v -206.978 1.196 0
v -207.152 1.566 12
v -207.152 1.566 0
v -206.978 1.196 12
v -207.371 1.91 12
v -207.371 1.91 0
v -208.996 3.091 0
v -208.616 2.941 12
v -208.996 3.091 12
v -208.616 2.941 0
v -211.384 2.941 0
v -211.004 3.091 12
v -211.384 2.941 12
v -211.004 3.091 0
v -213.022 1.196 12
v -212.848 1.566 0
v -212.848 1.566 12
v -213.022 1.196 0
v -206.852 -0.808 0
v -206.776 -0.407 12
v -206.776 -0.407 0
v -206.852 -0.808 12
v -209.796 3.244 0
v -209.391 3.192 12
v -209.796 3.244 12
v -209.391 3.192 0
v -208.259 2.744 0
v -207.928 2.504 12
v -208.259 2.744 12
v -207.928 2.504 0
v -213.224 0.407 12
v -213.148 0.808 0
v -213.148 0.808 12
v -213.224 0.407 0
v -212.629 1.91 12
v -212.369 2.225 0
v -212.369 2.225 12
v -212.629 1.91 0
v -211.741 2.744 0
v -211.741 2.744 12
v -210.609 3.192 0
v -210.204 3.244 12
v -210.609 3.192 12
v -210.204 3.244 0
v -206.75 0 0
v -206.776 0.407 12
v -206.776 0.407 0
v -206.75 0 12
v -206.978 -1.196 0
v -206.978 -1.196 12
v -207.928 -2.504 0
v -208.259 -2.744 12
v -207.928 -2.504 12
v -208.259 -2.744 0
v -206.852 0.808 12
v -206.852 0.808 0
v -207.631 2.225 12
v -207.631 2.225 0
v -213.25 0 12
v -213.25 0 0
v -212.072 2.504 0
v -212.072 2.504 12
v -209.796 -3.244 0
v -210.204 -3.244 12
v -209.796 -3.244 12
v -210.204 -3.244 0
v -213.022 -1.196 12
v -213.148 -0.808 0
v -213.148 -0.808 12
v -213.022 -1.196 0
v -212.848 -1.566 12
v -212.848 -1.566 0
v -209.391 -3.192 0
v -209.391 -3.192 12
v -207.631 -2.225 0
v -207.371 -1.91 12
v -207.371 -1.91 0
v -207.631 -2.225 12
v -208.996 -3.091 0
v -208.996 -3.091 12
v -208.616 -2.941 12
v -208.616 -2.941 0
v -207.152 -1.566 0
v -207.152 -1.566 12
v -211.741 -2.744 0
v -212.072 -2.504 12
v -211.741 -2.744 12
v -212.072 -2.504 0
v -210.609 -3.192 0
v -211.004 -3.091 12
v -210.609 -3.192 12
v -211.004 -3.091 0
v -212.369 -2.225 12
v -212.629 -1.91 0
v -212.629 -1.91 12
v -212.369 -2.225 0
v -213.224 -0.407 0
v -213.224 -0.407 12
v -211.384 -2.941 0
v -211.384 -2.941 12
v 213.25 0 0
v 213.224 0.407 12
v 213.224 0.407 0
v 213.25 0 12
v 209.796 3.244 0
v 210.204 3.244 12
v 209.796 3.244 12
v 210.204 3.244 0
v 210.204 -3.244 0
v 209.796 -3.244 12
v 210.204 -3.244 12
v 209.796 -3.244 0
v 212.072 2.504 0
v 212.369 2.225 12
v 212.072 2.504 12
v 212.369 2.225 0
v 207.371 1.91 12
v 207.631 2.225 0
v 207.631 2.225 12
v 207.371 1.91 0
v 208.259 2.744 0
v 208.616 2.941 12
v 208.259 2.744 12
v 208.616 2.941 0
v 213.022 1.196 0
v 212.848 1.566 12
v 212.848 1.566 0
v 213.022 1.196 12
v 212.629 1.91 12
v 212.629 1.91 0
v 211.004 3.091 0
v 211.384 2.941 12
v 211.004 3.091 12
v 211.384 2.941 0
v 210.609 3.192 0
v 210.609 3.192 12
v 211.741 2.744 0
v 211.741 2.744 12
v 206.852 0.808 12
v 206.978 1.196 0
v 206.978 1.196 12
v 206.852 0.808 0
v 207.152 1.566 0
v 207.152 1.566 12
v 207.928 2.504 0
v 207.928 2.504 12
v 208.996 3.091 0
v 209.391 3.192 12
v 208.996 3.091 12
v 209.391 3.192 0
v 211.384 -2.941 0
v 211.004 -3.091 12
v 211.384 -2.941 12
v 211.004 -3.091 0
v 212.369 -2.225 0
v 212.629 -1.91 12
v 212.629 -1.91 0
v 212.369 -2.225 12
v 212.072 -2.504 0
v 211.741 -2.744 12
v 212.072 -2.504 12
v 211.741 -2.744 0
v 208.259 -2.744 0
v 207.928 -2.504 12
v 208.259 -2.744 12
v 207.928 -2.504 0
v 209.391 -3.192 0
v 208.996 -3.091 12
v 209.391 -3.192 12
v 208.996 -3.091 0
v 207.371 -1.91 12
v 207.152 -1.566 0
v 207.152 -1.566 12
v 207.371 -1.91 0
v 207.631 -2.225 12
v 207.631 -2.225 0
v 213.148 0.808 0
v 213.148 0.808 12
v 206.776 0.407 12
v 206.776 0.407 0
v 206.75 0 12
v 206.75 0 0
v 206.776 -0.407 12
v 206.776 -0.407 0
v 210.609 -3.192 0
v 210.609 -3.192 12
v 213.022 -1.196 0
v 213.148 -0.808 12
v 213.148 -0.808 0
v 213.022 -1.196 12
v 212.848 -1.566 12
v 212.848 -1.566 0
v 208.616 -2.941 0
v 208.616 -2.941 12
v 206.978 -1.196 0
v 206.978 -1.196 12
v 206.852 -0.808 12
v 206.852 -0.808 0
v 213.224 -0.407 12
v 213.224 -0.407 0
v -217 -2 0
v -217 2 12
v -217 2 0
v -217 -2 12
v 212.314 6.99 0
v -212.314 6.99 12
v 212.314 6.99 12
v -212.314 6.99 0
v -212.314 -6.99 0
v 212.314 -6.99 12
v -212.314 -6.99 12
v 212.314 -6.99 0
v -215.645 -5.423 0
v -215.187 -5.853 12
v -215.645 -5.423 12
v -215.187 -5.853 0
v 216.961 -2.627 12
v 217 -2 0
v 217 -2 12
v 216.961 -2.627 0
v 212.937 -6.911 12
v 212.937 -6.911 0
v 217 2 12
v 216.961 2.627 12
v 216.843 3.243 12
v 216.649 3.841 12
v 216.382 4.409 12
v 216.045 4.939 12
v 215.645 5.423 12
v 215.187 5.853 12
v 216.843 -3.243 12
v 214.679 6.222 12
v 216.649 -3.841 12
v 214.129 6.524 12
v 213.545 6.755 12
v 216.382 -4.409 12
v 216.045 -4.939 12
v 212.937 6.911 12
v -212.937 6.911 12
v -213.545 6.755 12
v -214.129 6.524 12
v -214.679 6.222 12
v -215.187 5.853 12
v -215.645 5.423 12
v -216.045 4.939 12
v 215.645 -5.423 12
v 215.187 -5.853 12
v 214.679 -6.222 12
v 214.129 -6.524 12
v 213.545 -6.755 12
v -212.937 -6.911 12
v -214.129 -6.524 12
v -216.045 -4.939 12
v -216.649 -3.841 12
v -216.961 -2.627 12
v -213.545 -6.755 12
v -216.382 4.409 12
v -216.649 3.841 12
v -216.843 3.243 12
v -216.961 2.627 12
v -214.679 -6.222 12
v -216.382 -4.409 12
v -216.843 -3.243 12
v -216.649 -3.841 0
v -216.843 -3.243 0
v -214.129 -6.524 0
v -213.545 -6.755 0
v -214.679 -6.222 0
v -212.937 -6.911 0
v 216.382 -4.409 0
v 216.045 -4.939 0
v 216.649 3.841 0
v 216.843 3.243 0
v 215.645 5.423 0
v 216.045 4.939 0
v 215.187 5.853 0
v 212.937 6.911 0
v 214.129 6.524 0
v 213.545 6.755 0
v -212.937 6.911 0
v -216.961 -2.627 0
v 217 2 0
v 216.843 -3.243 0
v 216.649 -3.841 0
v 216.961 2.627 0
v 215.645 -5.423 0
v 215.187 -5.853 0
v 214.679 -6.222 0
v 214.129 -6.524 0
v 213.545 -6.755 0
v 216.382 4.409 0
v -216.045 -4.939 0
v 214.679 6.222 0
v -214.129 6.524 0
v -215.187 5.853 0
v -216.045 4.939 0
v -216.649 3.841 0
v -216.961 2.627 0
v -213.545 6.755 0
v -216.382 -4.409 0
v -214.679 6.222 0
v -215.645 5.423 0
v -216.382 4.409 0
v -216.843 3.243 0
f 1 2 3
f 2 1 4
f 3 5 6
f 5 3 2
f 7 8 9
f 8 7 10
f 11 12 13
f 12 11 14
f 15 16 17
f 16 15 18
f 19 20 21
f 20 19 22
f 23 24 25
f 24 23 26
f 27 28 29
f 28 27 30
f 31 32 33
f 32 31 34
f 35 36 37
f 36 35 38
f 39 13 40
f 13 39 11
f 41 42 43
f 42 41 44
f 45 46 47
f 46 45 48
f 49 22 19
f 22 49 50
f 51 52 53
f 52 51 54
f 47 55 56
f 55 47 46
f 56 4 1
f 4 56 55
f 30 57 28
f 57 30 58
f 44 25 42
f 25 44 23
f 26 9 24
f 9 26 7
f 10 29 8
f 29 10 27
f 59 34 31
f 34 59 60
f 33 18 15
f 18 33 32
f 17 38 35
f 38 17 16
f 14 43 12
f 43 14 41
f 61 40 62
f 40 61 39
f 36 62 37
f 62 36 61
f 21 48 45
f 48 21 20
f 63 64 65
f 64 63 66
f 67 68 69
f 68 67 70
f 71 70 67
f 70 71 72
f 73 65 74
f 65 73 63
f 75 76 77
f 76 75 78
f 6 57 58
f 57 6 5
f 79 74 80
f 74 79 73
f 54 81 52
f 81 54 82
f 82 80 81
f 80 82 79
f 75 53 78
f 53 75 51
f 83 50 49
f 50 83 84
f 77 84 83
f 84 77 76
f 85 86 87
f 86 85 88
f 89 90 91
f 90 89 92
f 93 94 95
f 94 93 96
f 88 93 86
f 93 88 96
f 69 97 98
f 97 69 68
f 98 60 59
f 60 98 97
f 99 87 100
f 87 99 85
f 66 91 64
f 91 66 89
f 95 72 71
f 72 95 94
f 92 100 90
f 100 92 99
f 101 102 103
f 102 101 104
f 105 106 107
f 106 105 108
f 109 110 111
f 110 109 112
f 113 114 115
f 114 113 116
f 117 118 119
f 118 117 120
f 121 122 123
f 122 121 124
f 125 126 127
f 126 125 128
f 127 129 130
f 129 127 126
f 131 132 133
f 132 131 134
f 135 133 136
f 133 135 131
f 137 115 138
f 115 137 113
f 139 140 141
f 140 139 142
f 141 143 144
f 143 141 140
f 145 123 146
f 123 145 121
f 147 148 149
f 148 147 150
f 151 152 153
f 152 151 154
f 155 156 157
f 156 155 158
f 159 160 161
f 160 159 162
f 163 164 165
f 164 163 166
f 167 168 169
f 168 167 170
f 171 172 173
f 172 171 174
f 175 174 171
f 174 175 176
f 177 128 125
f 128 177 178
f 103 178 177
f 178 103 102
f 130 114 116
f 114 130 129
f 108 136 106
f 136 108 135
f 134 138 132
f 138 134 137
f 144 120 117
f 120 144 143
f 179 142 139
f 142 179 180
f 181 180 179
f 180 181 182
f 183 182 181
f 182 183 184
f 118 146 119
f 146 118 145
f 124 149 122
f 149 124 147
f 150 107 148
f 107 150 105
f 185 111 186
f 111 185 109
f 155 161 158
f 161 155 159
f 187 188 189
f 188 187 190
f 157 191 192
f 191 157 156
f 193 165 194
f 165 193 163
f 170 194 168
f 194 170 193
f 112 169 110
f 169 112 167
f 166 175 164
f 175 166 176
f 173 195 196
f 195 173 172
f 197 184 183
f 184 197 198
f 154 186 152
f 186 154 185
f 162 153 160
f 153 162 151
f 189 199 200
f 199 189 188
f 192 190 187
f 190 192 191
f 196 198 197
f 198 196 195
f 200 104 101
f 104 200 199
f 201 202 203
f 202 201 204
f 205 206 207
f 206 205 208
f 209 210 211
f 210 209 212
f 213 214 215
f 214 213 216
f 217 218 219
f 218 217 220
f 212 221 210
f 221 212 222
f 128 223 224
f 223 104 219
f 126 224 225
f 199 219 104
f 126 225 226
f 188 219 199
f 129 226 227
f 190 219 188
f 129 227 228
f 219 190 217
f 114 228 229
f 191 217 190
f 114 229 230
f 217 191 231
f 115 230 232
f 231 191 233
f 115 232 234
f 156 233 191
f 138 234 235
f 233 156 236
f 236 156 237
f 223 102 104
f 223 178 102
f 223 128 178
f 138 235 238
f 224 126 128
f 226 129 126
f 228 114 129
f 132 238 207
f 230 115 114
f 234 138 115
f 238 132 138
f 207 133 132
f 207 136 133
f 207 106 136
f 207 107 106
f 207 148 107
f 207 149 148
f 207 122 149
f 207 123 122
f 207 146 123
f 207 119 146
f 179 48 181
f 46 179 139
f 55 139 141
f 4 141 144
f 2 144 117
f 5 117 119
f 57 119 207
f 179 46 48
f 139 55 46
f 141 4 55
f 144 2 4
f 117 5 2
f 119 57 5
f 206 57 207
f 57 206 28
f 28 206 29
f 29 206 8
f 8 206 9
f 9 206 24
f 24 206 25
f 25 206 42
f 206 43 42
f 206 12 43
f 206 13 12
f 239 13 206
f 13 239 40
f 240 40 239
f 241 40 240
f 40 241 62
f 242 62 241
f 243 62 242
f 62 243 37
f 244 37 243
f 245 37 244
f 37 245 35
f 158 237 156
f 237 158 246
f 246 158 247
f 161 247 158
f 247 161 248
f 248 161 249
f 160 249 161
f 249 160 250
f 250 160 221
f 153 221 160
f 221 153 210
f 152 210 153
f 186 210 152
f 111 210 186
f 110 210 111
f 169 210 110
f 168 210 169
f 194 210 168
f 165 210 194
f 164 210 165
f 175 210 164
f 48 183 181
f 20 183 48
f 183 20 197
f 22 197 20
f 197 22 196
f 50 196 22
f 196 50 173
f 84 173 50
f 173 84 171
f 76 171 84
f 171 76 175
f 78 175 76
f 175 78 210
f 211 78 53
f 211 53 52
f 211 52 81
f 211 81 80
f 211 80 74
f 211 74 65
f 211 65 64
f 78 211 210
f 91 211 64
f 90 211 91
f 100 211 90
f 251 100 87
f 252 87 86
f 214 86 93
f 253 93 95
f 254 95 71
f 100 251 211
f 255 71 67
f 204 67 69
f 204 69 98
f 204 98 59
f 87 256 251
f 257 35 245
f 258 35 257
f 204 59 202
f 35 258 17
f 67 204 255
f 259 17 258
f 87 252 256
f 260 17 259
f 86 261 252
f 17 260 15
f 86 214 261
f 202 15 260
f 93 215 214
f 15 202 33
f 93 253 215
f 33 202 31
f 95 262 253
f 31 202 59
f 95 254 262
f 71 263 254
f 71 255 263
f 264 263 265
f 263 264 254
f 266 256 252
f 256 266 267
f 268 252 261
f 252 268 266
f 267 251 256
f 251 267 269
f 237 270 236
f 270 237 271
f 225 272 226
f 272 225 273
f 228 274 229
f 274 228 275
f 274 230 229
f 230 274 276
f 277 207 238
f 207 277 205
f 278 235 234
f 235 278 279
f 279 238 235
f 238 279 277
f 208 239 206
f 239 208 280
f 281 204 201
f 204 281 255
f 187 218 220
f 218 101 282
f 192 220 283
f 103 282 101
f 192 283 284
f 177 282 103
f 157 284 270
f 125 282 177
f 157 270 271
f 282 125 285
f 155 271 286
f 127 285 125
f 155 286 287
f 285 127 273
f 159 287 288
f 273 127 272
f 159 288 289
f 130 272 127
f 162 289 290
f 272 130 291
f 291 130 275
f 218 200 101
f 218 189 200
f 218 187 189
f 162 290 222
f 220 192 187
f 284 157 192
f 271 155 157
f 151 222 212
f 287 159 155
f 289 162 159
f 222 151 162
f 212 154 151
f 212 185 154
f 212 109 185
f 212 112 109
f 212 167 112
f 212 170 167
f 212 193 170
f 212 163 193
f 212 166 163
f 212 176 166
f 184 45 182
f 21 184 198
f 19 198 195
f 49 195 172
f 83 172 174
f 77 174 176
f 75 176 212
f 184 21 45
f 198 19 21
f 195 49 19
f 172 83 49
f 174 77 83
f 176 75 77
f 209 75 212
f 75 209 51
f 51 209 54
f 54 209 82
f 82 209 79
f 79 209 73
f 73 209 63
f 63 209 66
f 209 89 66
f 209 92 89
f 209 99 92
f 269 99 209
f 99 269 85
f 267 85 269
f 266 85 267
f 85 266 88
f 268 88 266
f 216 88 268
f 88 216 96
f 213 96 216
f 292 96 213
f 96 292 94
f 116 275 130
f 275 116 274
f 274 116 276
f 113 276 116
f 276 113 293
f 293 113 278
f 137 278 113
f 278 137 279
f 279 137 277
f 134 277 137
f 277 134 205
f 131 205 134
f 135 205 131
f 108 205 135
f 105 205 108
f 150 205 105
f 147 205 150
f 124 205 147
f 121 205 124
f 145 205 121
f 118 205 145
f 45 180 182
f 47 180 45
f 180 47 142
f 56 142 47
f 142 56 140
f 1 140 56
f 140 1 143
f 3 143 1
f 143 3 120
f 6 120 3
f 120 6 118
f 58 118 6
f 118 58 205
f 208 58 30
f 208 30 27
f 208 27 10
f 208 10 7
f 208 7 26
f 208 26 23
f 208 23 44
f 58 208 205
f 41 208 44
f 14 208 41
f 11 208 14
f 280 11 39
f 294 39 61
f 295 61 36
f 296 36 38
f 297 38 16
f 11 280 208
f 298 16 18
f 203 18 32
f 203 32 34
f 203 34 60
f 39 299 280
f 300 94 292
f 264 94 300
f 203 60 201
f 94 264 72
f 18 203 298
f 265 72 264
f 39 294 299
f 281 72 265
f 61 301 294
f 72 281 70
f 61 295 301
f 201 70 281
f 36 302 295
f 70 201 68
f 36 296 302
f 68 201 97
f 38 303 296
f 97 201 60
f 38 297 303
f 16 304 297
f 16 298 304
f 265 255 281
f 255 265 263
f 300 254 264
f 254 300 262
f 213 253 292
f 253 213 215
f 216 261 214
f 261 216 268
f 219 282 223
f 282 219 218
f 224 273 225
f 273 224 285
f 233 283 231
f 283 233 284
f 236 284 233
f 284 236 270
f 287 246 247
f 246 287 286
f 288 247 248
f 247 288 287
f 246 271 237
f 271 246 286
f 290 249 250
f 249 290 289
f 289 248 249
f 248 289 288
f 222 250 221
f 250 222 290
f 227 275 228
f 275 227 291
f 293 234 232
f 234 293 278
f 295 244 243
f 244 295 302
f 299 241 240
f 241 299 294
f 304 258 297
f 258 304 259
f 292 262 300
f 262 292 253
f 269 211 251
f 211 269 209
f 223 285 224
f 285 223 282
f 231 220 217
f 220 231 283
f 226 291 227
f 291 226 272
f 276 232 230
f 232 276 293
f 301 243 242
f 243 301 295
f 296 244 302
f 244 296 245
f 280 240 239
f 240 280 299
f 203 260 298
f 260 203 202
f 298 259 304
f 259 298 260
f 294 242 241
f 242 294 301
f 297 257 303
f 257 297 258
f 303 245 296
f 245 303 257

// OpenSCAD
$fn = 50;


difference() {
	union() {
		hull() {
			translate(v = [-212.0000000000, 2.0000000000, 0]) {
				cylinder(h = 12, r = 5);
			}
			translate(v = [212.0000000000, 2.0000000000, 0]) {
				cylinder(h = 12, r = 5);
			}
			translate(v = [-212.0000000000, -2.0000000000, 0]) {
				cylinder(h = 12, r = 5);
			}
			translate(v = [212.0000000000, -2.0000000000, 0]) {
				cylinder(h = 12, r = 5);
			}
		}
	}
	union() {
		translate(v = [-210.0000000000, 0.0000000000, 0]) {
			cylinder(h = 12, r = 3.2500000000);
		}
		translate(v = [210.0000000000, 0.0000000000, 0]) {
			cylinder(h = 12, r = 3.2500000000);
		}
		translate(v = [-210.0000000000, 0.0000000000, 0]) {
			cylinder(h = 12, r = 1.8000000000);
		}
		translate(v = [210.0000000000, 0.0000000000, 0]) {
			cylinder(h = 12, r = 1.8000000000);
		}
		translate(v = [-210.0000000000, 0.0000000000, 0]) {
			cylinder(h = 12, r = 1.8000000000);
		}
		translate(v = [210.0000000000, 0.0000000000, 0]) {
			cylinder(h = 12, r = 1.8000000000);
		}
		translate(v = [-210.0000000000, 0.0000000000, 0]) {
			cylinder(h = 12, r = 1.8000000000);
		}
		translate(v = [210.0000000000, 0.0000000000, 0]) {
			cylinder(h = 12, r = 1.8000000000);
		}
	}
}
